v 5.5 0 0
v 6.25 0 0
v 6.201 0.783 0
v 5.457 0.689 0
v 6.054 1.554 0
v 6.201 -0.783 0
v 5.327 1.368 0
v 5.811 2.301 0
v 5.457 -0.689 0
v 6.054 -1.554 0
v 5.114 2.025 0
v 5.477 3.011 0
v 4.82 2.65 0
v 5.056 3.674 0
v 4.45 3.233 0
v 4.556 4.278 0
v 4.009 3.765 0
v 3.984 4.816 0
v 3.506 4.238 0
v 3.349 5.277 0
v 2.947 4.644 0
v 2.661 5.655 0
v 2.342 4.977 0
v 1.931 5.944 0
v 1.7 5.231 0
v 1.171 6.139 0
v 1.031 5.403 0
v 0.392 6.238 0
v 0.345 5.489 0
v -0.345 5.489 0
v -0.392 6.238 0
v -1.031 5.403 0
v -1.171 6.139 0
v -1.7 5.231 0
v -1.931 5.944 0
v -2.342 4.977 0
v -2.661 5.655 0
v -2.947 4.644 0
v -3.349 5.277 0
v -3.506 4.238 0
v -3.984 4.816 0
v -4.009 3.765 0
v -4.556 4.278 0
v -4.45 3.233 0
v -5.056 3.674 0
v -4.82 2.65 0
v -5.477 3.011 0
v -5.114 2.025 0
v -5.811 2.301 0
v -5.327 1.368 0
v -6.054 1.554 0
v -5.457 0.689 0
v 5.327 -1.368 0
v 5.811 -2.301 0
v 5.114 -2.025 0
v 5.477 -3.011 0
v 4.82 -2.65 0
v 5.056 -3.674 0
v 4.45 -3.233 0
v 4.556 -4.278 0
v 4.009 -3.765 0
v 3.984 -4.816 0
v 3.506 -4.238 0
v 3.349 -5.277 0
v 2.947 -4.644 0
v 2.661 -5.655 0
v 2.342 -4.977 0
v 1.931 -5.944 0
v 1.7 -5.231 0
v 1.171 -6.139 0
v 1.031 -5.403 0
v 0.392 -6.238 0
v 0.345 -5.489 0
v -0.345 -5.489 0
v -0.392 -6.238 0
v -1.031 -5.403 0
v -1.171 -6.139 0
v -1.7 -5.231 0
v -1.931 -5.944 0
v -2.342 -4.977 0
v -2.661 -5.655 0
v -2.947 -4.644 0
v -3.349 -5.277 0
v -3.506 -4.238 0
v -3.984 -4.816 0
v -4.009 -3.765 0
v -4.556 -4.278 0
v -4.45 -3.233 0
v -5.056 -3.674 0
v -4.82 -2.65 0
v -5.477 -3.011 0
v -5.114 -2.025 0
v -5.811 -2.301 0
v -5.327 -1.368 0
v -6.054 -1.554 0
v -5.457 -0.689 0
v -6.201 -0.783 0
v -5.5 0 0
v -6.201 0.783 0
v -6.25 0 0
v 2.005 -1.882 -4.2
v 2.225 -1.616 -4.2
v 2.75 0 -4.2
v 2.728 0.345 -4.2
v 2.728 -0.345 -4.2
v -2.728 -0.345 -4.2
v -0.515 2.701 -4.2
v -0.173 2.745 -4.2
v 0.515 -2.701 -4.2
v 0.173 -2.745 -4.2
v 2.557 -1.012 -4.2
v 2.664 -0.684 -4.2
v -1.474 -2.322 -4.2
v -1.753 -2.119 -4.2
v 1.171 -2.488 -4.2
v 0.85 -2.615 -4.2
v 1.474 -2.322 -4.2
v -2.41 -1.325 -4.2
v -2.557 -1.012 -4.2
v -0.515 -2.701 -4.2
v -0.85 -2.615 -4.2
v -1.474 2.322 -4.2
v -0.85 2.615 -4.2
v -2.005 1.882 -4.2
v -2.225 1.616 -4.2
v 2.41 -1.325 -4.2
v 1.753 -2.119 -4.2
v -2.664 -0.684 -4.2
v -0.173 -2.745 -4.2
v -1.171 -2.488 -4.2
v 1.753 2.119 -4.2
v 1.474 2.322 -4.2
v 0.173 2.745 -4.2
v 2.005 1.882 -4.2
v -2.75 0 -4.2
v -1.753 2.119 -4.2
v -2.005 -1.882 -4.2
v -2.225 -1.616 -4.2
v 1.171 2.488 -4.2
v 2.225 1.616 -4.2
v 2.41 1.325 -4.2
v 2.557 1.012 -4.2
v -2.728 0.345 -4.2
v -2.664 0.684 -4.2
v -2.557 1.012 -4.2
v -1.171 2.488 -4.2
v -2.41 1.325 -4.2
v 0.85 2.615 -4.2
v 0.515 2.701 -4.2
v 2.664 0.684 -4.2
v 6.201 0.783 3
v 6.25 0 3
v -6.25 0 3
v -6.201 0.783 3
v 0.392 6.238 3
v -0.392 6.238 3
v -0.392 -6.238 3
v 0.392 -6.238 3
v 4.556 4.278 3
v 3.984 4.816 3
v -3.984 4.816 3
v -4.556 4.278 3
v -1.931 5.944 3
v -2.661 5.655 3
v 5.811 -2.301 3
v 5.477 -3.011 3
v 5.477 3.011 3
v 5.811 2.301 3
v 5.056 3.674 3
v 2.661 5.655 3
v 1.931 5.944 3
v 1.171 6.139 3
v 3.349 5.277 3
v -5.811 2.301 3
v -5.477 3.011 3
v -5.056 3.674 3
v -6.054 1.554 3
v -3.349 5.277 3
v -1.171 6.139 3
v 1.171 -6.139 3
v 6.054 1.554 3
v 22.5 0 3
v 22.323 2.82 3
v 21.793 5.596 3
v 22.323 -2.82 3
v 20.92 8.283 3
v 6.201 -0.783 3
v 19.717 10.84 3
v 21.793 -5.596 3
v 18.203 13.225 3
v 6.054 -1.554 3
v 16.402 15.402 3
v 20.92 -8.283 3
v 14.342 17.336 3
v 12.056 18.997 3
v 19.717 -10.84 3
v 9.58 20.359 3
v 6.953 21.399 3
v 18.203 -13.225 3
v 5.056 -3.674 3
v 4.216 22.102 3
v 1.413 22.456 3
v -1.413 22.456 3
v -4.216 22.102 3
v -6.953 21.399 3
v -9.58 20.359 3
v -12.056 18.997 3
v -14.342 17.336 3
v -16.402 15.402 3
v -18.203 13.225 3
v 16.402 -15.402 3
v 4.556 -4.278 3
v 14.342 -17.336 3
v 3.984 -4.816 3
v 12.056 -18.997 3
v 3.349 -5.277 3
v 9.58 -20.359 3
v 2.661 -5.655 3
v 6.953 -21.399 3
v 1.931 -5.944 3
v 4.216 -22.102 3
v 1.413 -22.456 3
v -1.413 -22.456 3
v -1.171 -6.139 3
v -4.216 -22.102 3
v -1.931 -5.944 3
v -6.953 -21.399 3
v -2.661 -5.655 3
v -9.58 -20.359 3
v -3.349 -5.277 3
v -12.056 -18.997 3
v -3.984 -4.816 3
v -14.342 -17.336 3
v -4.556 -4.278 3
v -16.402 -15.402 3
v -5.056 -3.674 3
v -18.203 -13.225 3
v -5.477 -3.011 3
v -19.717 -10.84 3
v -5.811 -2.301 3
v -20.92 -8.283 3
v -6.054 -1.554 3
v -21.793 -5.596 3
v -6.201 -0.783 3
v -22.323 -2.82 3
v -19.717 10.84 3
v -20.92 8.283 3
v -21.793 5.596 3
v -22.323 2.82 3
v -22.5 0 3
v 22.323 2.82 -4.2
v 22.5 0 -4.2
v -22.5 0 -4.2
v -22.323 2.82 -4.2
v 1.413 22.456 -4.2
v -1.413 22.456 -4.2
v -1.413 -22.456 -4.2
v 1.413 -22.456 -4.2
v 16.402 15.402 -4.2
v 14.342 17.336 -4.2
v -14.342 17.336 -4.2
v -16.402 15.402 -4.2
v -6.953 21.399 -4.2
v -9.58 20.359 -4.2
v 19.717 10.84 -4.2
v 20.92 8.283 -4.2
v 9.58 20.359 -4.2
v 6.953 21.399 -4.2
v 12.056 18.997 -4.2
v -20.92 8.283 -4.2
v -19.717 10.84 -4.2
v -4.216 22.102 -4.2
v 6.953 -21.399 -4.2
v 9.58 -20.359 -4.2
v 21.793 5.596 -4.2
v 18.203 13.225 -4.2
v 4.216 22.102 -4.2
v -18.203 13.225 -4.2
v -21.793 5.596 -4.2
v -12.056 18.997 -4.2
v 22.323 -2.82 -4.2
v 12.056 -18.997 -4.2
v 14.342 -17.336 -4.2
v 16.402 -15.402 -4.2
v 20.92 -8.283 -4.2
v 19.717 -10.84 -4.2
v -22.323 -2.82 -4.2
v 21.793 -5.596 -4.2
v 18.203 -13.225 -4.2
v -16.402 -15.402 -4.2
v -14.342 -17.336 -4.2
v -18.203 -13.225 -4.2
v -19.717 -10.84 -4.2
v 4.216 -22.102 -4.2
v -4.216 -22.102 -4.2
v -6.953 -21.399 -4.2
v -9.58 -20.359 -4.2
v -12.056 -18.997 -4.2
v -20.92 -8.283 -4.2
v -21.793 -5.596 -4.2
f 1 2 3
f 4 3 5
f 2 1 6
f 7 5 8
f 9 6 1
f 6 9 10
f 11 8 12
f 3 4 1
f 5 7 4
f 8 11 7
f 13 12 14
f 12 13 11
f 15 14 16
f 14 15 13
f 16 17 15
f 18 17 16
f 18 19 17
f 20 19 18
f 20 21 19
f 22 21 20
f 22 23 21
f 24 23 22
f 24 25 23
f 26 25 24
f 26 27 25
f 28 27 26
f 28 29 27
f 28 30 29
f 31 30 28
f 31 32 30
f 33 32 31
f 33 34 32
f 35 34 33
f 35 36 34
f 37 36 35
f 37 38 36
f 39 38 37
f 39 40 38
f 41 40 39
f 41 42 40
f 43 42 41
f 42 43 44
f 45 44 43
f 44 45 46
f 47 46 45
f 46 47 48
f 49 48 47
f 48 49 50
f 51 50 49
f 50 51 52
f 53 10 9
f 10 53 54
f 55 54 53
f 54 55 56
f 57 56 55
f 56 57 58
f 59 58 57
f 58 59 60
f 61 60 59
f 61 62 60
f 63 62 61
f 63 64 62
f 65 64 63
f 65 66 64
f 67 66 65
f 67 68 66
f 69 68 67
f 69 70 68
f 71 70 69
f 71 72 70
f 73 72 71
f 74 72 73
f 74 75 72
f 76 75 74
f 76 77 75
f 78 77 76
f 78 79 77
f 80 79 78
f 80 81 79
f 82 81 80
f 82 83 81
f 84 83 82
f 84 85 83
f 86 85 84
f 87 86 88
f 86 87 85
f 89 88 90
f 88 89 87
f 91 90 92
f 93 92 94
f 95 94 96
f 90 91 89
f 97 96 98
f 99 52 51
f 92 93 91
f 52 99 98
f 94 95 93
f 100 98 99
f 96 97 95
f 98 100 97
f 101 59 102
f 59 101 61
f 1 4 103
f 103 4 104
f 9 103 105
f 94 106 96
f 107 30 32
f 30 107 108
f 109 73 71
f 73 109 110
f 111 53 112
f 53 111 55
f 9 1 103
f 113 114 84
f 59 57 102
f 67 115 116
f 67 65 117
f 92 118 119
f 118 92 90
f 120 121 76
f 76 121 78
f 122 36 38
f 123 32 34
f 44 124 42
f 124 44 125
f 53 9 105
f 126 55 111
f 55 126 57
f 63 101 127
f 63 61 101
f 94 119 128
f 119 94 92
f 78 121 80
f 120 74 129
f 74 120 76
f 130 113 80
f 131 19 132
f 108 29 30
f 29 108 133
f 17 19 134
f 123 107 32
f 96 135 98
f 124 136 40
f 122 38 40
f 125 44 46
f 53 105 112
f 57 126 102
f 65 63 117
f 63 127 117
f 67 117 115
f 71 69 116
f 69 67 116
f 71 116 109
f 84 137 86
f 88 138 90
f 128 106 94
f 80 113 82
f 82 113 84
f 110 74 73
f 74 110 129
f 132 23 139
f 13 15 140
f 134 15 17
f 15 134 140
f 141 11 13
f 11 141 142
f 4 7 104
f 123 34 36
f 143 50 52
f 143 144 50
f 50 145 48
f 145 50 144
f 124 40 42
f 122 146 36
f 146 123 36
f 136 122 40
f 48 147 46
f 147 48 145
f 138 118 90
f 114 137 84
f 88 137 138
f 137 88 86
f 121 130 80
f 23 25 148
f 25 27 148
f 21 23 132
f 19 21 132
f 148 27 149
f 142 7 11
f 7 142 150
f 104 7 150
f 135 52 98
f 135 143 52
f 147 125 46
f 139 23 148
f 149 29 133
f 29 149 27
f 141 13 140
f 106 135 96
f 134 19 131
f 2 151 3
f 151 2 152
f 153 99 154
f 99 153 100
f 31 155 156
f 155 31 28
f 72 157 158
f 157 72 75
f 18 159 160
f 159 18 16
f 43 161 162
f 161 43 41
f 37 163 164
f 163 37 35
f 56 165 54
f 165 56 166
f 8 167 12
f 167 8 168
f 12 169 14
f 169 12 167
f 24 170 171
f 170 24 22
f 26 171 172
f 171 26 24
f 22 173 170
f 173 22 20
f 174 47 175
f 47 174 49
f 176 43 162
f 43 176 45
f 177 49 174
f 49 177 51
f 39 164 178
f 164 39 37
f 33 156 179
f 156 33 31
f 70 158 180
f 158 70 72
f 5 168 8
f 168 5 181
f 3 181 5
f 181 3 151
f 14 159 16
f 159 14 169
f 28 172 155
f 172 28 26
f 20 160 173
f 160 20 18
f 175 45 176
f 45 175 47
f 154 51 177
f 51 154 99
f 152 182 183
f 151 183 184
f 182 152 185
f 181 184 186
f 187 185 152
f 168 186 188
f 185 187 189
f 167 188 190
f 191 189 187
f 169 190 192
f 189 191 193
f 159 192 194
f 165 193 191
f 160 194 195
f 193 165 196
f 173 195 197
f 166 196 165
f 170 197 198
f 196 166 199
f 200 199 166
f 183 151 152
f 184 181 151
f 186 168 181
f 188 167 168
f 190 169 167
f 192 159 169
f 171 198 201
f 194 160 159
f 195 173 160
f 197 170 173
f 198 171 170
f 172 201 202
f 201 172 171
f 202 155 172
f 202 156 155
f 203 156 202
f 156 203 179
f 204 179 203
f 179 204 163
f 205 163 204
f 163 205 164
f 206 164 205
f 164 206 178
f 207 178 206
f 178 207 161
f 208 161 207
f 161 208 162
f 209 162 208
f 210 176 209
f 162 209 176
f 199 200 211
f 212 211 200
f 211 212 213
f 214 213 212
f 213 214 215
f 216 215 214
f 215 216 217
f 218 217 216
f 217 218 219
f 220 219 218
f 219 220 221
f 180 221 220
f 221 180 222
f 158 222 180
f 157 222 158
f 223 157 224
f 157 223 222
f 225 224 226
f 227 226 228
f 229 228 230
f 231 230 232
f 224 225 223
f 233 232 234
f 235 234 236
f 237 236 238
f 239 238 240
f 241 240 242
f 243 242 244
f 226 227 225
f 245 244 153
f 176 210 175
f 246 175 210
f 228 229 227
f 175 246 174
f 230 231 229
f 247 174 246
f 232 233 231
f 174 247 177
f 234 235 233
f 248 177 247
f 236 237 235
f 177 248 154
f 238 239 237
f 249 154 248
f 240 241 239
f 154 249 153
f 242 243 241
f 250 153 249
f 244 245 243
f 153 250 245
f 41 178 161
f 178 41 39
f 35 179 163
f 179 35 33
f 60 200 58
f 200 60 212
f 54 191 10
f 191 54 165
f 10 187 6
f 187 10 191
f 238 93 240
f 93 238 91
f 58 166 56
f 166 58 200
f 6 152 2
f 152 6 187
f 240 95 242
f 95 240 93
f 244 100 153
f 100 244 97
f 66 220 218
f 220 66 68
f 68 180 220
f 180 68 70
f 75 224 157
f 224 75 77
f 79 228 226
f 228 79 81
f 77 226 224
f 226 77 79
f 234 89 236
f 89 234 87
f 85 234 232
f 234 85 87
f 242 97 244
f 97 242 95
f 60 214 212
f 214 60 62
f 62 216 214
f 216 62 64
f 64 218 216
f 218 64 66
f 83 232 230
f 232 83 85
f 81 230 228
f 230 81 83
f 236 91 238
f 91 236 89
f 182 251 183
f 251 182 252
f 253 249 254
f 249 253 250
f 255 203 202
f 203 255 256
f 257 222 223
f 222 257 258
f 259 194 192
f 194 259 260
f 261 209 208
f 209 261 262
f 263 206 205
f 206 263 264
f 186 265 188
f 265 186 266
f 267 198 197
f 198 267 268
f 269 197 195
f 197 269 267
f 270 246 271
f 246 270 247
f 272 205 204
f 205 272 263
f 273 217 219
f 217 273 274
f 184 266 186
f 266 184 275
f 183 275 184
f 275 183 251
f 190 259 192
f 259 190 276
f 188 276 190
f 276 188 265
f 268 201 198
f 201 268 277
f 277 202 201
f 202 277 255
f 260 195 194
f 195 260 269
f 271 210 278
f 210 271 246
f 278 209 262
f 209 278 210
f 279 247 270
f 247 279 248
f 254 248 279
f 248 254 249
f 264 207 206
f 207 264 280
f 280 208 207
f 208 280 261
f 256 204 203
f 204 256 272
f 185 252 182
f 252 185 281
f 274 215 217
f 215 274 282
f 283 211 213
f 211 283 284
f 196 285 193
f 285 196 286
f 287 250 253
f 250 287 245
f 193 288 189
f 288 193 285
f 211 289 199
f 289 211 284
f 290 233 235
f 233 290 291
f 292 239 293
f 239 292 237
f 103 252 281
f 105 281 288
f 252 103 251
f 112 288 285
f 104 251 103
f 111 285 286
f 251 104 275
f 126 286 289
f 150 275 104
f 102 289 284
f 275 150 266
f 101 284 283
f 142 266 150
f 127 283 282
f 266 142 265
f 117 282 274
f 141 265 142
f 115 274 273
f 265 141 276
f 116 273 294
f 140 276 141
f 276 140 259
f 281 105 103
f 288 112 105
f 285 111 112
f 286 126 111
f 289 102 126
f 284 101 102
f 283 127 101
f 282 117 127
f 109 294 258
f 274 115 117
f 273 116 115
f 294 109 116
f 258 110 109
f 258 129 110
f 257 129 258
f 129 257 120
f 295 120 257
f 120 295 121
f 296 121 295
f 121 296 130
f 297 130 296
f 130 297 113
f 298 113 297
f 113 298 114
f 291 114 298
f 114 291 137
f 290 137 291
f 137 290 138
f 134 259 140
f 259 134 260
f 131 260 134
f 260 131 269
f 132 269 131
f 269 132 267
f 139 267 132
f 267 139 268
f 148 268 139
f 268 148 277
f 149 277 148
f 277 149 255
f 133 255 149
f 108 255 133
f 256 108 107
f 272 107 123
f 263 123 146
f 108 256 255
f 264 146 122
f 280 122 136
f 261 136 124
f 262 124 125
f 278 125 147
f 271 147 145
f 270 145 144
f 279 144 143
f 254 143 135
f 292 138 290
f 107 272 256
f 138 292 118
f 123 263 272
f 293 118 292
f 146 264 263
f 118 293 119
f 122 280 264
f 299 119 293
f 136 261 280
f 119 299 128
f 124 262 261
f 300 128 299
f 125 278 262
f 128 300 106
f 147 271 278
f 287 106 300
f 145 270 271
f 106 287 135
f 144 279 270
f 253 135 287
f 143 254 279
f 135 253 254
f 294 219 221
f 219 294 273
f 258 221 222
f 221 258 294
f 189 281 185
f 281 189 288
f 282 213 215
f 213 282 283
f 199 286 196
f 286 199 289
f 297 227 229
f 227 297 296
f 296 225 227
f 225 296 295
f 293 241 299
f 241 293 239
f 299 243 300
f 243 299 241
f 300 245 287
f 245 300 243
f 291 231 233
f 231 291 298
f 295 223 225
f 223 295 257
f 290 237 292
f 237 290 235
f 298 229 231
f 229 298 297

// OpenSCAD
$fn = 50;

difference() {
	union() {
		translate(v = [0, 0, -4.2]) {
			cylinder(h = 7.2, r = 22.5);
		}
	}
	union() {
		translate(v = [0, 0, 0]) {
			rotate(a = [0, 0, 0]) {
				difference() {
					union() {
						translate(v = [0, 0, -7.2]) {
							cylinder(h = 7.2, r = 2.25);
						}
						translate(v = [0, 0, -4.2]) {
							cylinder(h = 4.2, r1 = 2.75, r2 = 5.5);
						}
						translate(v = [0, 0, -7.2]) {
							cylinder(h = 7.2, r = 2.75);
						}
						translate(v = [0, 0, -7.2]) {
							cylinder(h = 7.2, r = 2.25);
						}
					}
					union();
				}
			}
		}
		#cylinder(h = 3, r = 6.25);
	}
}
